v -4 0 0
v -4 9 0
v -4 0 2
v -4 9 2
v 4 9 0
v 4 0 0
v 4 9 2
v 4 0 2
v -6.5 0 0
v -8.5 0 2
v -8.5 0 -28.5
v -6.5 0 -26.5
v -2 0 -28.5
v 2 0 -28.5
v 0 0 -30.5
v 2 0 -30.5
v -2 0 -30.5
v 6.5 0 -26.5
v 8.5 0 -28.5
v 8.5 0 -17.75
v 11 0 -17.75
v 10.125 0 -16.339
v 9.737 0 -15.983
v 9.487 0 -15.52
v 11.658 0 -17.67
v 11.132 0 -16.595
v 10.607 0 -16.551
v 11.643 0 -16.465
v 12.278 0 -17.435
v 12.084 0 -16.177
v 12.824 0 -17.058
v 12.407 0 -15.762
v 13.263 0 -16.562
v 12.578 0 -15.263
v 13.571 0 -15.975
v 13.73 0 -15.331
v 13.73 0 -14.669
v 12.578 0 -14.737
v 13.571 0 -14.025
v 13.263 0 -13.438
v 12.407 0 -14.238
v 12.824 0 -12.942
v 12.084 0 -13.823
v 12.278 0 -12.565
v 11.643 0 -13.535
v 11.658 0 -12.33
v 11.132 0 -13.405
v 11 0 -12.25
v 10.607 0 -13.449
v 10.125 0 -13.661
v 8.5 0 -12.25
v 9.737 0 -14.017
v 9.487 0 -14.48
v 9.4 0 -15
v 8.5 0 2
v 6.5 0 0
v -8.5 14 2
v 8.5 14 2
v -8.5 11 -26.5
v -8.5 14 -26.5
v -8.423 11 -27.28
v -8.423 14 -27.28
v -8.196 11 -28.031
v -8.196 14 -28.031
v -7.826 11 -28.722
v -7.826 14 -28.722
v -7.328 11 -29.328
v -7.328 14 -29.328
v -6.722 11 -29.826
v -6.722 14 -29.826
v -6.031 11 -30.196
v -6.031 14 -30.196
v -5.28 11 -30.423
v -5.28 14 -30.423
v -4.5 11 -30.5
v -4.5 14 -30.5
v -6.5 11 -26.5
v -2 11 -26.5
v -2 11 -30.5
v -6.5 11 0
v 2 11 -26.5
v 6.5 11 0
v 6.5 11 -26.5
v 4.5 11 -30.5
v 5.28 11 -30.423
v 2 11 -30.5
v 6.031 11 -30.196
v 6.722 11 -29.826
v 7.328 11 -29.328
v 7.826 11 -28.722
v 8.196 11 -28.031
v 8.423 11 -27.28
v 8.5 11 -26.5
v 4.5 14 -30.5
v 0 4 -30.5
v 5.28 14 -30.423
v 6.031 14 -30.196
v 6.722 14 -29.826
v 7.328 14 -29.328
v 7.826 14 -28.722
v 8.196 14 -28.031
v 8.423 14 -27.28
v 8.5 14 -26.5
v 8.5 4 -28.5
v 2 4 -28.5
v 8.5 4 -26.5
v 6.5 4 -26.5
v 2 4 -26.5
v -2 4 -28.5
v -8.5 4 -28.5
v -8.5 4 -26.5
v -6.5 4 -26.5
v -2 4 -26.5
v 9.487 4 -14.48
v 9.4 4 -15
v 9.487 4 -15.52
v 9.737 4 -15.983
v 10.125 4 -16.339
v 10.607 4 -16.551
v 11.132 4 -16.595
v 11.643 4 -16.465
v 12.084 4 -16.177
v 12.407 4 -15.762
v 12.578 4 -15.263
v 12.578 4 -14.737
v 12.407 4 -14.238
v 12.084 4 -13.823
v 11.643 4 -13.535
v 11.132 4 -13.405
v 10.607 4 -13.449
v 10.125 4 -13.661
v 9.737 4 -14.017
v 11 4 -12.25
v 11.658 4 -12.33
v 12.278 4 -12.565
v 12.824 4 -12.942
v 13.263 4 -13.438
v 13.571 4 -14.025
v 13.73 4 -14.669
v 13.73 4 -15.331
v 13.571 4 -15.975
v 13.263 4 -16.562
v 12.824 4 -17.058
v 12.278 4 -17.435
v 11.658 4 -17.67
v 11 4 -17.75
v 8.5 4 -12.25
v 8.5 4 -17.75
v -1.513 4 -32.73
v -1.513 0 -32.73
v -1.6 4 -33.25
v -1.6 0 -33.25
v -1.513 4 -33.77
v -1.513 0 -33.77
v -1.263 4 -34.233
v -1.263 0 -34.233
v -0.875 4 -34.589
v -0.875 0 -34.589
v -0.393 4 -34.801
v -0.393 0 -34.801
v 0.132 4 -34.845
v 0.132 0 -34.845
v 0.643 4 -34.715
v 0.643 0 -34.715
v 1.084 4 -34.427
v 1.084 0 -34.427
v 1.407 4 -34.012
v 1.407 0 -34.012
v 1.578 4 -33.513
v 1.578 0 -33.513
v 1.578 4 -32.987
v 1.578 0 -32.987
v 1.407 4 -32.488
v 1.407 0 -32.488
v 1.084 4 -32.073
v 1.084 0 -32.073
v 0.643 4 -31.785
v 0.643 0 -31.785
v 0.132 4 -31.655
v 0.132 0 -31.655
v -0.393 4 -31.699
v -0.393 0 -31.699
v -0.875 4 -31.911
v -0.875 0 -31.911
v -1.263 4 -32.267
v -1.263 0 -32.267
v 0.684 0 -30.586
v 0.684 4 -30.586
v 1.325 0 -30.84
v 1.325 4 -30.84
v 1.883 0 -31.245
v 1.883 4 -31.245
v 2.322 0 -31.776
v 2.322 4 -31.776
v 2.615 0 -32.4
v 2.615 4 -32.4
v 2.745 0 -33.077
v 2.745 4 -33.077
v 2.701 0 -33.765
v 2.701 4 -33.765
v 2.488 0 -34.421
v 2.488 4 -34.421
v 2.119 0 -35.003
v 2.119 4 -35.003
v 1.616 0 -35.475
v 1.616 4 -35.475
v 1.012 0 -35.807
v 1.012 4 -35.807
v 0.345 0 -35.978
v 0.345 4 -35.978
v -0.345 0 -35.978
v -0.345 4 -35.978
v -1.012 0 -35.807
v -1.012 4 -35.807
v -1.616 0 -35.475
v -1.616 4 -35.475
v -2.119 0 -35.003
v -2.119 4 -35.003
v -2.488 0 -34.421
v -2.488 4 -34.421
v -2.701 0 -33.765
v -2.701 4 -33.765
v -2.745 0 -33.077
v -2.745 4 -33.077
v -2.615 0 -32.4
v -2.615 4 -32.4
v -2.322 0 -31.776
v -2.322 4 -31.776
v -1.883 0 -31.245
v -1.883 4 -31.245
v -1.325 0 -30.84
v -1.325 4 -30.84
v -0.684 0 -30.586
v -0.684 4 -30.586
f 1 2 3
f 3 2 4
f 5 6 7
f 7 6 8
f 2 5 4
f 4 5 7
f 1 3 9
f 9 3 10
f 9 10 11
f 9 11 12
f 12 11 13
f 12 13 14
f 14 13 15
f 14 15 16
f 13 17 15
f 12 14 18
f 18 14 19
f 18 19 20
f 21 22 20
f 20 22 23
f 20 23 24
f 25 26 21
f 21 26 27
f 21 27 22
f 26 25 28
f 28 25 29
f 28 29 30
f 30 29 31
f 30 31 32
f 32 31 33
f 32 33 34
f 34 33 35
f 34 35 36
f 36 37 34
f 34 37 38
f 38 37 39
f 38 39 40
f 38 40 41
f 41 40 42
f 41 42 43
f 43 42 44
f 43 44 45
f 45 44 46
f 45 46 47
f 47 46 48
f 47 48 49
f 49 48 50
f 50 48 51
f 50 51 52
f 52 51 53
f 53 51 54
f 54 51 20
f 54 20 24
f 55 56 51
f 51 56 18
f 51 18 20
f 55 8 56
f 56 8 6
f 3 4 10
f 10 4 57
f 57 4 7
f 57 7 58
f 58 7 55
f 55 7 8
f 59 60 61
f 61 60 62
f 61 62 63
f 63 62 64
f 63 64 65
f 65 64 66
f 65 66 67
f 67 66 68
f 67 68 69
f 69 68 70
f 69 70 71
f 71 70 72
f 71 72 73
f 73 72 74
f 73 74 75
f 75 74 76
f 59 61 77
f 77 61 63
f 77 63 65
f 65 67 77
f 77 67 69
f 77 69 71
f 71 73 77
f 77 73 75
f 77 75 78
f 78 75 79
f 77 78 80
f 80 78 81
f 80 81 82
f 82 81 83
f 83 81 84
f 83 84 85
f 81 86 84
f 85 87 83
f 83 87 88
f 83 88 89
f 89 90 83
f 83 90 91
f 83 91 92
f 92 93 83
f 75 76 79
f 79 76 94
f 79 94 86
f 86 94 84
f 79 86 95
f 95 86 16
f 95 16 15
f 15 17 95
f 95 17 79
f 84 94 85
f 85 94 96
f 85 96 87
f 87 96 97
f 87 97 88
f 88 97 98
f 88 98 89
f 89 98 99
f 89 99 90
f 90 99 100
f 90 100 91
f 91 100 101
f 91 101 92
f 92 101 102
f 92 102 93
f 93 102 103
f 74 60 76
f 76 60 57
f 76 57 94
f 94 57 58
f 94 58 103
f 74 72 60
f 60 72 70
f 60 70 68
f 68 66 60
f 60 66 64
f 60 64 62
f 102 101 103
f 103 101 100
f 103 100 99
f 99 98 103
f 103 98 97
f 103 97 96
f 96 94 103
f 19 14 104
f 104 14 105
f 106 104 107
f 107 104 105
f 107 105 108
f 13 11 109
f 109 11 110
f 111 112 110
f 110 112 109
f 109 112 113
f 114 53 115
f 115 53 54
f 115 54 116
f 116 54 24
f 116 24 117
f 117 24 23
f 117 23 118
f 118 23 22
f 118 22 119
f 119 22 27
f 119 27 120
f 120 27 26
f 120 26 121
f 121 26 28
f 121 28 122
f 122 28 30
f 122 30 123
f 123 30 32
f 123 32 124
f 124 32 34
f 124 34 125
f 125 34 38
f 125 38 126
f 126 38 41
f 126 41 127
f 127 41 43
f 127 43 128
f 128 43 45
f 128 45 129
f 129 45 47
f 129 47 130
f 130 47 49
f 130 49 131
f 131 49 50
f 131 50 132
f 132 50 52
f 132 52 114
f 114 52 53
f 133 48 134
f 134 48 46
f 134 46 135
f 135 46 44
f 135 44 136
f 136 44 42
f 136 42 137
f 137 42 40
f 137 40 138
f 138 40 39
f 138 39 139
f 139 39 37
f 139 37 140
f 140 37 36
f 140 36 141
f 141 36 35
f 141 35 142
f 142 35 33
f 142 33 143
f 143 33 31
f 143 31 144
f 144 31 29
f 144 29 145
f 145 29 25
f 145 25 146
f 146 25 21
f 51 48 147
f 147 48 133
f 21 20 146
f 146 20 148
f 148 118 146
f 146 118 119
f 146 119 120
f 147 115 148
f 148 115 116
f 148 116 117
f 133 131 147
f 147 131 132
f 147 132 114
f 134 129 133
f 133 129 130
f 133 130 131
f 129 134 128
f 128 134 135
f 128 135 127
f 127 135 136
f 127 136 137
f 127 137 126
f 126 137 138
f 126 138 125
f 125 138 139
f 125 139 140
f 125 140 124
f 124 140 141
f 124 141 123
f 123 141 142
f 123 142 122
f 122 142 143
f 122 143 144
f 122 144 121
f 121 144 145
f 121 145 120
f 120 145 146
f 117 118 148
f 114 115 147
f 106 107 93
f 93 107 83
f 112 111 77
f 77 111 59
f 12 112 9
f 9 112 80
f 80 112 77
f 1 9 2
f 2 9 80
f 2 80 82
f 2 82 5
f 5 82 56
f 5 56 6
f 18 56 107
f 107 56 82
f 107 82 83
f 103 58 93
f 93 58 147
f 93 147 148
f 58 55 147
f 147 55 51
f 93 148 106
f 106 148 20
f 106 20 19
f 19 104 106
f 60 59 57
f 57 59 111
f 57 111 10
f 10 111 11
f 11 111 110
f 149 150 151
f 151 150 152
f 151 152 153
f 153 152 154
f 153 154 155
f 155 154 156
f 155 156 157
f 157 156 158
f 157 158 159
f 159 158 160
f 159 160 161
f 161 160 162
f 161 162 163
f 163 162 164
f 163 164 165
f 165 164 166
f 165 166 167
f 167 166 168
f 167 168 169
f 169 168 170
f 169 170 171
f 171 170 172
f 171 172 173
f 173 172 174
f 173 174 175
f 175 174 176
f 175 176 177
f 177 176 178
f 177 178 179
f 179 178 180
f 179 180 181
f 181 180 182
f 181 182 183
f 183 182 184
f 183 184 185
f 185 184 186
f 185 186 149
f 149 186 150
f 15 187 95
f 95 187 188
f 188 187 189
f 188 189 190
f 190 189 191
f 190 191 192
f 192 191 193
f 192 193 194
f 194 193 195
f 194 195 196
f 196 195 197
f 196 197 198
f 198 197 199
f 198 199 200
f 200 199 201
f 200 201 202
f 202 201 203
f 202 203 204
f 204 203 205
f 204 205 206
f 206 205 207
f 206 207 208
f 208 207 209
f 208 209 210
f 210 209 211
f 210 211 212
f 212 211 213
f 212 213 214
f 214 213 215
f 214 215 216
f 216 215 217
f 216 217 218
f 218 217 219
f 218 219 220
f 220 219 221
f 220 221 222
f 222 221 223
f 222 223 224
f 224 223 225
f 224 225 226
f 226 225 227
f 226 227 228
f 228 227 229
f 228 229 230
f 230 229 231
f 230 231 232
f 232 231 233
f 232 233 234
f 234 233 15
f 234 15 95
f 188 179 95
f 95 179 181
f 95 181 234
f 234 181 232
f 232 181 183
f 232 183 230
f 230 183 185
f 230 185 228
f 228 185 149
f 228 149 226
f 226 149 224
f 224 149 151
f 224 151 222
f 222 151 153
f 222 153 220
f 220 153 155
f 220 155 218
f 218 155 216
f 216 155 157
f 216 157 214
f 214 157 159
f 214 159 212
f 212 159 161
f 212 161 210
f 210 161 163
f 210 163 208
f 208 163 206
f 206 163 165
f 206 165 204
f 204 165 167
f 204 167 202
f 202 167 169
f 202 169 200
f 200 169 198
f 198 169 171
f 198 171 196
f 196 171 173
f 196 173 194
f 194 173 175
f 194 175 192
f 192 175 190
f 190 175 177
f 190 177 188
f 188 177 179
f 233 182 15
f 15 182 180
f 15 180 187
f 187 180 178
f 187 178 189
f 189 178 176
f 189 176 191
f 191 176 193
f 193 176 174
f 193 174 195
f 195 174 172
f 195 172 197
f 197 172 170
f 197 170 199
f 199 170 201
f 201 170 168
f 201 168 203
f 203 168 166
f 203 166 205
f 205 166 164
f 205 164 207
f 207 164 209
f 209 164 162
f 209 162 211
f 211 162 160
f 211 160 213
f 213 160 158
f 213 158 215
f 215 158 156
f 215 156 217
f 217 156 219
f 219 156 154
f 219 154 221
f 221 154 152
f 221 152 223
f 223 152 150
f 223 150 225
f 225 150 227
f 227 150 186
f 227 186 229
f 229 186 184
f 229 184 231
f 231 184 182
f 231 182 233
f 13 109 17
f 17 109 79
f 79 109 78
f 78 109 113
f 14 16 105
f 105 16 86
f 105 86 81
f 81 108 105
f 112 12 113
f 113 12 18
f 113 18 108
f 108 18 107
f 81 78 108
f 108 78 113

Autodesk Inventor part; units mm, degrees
ref_plane "YZ Plane" through (0, 0, 0) normal (1, 0, 0) x (0, 1, 0)
ref_plane "XZ Plane" through (0, 0, 0) normal (0, 1, 0) x (-1, 0, 0)
ref_plane "XY Plane" through (0, 0, 0) normal (0, 0, 1) x (1, 0, 0)
sketch "Szkic1" plane through (0, 0, 0) normal (0, 1, 0) x (-1, 0, 0)
  line L0 (0, 0) -> (0, -26.5) construction
  line L1 (6.5, -26.5) -> (-6.5, -26.5)
  line L2 (6.5, 0) -> (-6.5, 0)
  line L3 (-6.5, 0) -> (-6.5, 2)
  line L4 (-6.5, 2) -> (6.5, 2)
  line L5 (6.5, 2) -> (6.5, 0)
  line L6 (-6.5, 0) -> (-6.5, -10)
  line L7 (6.5, 0) -> (6.5, -10)
  line L8 (6.5, -10) -> (6.5, -26.5)
  line L9 (-6.5, -10) -> (-6.5, -26.5)
  line L10 (-6.5, 2) -> (-8.5, 2)
  line L11 (2, -26.5) -> (2, -30.5)
  line L12 (2, -30.5) -> (-2, -30.5)
  line L13 (-2, -30.5) -> (-2, -26.5)
  line L14 (-8.5, 2) -> (-8.5, -26.5)
  line L15 (-8.5, -26.5) -> (-6.5, -26.5)
  line L16 (6.5, -26.5) -> (8.5, -26.5)
  line L17 (8.5, -26.5) -> (8.5, 2)
  line L18 (8.5, 2) -> (6.5, 2)
  line L19 (11, -15) -> (-11, -15) construction
  circle A0 centre (-11, -15) radius 1.6
  circle A1 centre (11, -15) radius 1.6
  arc A2 (-11, -12.25) -> (-11, -17.75) centre (-11, -15) ccw
  arc A3 (11, -17.75) -> (11, -12.25) centre (11, -15) ccw
  line L20 (11, -12.25) -> (8.5, -12.25)
  line L21 (11, -17.75) -> (8.5, -17.75)
  line L22 (-11, -17.75) -> (-8.5, -17.75)
  line L23 (-11, -12.25) -> (-8.5, -12.25)
  line L24 (0, -30.5) -> (0, -33.25) construction
  circle A4 centre (0, -33.25) radius 1.6
  circle A5 centre (0, -33.25) radius 2.75
  line L25 (2, -30.5) -> (2, -31.3625)
  line L26 (-2, -30.5) -> (-2, -31.3625)
  line L27 (8.5, -26.5) -> (8.5, -28.5)
  line L28 (8.5, -28.5) -> (2, -28.5)
  line L29 (-8.5, -26.5) -> (-8.5, -28.5)
  line L30 (-8.5, -28.5) -> (-2, -28.5)
  point P0 (0, -15)
  dimension "d0" = 26.5
  dimension "d1" = 13
  dimension "d2" = 2
  dimension "d3" = 13
  dimension "d4" = 10
  dimension "d5" = 10
  dimension "d6" = 4
  dimension "d7" = 4
  dimension "d8" = 4.5
  dimension "d9" = 2
  dimension "d10" = 2
  dimension "d11" = 22
  dimension "d12" = 3.2
  dimension "d13" = 3.2
  dimension "d14" = 5.5
  dimension "d15" = 5.5
  dimension "d16" = 15
  dimension "d33" = 2.75
  dimension "d34" = 3.2
  dimension "d35" = 2
  dimension "d36" = 2
extrude "Wyciągnięcie proste1" add sketch "Szkic1" along normal blind 11 contours L8 L7 L5 L18 L17 L16 | L11 L12 L13 L1 | L2 L3 L4 L5 | L15 L14 L10 L3 L6 L9
extrude "Wyciągnięcie proste2" add sketch "Szkic1" along normal blind 4 contours L16 L27 L28 L11 L1 | L13 L30 L29 L15 L1 | A5 | L22 A2 L23 L14
sketch "Szkic2" plane through (0, 11, 0) normal (0, 1, 0) x (1, 0, 0)
  line L0 (0, 0) -> (-8.5, 0)
  line L1 (-8.5, 0) -> (-8.5, 30.5)
  line L2 (-8.5, 30.5) -> (8.5, 30.5)
  line L3 (8.5, 30.5) -> (8.5, -2)
  line L4 (8.5, -2) -> (-8.5, -2)
  line L5 (-8.5, -2) -> (-8.5, 0)
  dimension "d21" = 8.5
  dimension "d22" = 17
  dimension "d23" = 32.5
  dimension "d24" = 2
extrude "Wyciągnięcie proste3" add sketch "Szkic2" along normal blind 3
fillet "Zaokrąglenie1" radius 4 2 edges at (8.5, 12.5, -30.5) (-8.5, 12.5, -30.5)
sketch "Szkic3" plane through (-8.5, 0, 2) normal (0, 0, 1) x (1, 0, 0)
  line L0 (0, 0) -> (8.5, 0) construction
  line L1 (4.5, 0) -> (12.5, 0)
  line L2 (4.5, 0) -> (4.5, 9)
  line L3 (4.5, 9) -> (12.5, 9)
  line L4 (12.5, 9) -> (12.5, 0)
  dimension "d28" = 8.5
  dimension "d29" = 8
  dimension "d30" = 9
extrude "Wyciągnięcie proste4" cut sketch "Szkic3" against normal blind 3
equation "\"d3\" = d1"
equation "\"d5\" = d4"
equation "\"d10\" = d9"
properties part number "Część2-lewo"
